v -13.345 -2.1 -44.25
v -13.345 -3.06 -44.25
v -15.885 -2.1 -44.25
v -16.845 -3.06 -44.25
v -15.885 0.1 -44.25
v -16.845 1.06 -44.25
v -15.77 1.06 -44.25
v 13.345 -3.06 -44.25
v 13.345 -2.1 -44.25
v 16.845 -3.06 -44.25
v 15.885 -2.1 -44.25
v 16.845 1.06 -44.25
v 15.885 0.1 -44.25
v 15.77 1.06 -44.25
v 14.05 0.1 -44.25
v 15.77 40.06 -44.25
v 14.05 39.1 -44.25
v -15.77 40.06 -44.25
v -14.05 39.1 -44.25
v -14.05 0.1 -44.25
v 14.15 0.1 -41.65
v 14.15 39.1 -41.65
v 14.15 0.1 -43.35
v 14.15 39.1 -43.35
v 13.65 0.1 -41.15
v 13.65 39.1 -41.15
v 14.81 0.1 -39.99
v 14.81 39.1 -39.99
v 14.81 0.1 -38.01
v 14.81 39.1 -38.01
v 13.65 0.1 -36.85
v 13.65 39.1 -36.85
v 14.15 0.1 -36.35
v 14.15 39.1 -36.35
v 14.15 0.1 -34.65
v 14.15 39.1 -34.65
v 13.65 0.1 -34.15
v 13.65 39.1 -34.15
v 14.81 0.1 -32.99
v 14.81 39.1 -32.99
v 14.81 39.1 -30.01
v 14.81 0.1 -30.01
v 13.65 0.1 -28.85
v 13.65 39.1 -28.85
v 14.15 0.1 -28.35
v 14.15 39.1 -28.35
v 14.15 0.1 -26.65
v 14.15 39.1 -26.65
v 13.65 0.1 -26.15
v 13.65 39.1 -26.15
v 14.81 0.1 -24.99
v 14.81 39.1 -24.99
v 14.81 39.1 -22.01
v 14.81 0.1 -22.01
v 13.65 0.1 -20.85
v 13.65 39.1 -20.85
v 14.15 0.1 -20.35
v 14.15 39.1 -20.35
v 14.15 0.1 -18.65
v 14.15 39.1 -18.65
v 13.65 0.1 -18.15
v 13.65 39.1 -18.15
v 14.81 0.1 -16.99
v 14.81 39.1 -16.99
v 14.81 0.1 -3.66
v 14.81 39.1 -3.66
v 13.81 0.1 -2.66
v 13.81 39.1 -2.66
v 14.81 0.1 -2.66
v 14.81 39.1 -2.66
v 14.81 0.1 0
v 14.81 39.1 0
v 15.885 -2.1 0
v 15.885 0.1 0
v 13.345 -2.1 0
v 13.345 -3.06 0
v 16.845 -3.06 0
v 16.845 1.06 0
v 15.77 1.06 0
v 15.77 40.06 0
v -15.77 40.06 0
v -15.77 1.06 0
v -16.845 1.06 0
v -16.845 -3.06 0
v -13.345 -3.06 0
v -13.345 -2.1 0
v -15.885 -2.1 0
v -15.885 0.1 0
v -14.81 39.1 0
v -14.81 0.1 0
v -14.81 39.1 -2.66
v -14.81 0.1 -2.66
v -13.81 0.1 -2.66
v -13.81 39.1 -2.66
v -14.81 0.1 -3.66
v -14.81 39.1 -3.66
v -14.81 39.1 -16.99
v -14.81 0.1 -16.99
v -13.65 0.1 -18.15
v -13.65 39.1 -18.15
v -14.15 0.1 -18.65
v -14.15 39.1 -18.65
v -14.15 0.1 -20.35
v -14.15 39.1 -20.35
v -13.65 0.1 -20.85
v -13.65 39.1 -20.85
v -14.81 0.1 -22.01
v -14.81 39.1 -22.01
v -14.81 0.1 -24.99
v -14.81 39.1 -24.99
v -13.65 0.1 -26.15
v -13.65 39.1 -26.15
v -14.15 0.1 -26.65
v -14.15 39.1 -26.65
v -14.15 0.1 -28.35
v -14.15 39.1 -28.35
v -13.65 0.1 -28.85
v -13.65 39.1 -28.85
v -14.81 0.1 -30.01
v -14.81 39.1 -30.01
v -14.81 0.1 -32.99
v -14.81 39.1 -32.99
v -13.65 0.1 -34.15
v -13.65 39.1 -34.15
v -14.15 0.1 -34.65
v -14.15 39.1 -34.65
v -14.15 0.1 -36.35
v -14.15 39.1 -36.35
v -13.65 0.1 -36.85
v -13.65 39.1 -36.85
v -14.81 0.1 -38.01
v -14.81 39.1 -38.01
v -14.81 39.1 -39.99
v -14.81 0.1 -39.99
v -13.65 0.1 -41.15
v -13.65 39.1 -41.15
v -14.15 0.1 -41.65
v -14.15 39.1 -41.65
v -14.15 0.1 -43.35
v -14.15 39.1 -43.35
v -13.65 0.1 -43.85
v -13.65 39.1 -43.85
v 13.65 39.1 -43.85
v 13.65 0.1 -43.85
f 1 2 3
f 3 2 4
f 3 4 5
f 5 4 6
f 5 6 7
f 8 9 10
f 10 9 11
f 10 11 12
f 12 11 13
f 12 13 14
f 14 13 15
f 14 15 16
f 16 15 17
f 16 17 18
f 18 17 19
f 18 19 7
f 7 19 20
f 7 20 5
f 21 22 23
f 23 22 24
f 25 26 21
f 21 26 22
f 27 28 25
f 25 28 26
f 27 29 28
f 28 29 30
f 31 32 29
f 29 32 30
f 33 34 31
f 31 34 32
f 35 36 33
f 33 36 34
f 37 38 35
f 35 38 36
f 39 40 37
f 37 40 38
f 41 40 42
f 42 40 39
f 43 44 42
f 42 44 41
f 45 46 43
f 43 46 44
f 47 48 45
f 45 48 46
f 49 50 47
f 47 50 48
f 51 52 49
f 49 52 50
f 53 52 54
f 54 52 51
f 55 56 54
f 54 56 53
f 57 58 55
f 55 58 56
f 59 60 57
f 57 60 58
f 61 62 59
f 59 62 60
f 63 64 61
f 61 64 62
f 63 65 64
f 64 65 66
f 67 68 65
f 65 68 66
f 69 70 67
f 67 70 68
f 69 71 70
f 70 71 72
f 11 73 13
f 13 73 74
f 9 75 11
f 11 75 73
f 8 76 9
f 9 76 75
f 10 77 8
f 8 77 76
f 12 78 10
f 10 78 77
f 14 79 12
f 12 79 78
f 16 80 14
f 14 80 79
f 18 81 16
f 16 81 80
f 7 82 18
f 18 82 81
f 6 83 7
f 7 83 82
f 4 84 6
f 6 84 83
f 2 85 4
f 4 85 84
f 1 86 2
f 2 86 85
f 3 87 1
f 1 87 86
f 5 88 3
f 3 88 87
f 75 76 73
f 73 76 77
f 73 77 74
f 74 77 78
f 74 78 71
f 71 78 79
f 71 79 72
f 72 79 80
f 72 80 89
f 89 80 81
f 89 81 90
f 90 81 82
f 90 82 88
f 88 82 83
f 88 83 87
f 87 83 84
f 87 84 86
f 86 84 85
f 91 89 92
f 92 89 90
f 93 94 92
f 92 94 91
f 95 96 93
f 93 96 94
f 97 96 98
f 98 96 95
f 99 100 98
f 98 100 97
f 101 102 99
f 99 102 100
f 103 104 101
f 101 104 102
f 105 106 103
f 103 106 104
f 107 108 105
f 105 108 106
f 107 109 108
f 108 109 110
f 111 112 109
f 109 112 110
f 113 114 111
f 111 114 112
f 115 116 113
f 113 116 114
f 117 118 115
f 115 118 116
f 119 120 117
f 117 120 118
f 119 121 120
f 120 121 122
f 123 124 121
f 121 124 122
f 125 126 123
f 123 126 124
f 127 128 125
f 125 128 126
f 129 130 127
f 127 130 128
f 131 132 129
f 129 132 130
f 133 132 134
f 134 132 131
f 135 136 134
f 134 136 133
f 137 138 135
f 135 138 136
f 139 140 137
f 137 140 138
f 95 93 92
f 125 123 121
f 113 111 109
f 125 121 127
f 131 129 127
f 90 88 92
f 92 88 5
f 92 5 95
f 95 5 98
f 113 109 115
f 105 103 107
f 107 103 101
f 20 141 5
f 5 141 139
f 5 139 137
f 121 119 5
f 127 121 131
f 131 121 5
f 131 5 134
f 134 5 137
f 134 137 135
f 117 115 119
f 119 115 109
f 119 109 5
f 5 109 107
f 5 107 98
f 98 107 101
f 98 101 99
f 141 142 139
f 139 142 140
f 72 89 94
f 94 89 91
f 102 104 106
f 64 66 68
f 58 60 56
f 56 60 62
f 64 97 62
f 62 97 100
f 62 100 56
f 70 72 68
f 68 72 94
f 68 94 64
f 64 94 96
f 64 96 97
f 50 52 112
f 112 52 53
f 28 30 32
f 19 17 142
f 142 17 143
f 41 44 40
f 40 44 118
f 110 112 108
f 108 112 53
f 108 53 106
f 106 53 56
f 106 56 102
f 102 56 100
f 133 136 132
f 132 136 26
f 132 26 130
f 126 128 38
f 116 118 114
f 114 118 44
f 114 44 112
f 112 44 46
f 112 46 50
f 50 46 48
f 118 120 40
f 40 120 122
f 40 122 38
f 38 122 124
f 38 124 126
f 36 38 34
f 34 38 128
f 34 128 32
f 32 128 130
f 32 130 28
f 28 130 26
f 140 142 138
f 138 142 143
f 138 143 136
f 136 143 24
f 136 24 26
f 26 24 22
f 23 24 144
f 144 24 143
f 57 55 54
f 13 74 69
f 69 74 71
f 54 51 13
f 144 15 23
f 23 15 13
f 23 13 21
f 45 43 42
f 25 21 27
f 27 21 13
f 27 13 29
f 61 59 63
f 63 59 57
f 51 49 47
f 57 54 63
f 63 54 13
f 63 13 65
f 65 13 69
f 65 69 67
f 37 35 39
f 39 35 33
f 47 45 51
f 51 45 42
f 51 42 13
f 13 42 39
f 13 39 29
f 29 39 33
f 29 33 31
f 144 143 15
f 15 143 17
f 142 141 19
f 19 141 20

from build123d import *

# Parameters (mm, degrees)
BOSS_EXTRUDE1_DEPTH = 44.25
BOSS_EXTRUDE2_DEPTH = 39
BOSS_EXTRUDE3_DEPTH = 39
LPATTERN1_START     = 0.1
LPATTERN1_DEPTH     = 39
SPLIT1_START        = 0.1
SPLIT1_DEPTH        = 39
SPLIT1_2_DEPTH      = 39
SPLIT1_3_DEPTH      = 39


# Read off the part's stored shape, not the designer's step: LPattern1, Split1
with BuildPart() as part:
    # Sketch1 → Boss-Extrude1 (new body)
    with BuildSketch(Plane.XY):
        Polygon((-14.81, 0.1), (-15.885, 0.1), (-15.885, -2.1), (-13.345, -2.1), (-13.345, -3.06), (-16.845, -3.06), (-16.845, 1.06), (-15.77, 1.06), (-15.77, 40.06), (0, 40.06), (15.77, 40.06), (15.77, 1.06), (16.845, 1.06), (16.845, -3.06), (13.345, -3.06), (13.345, -2.1), (15.885, -2.1), (15.885, 0.1), (14.81, 0.1), (14.81, 39.1), (0, 39.1), (-14.81, 39.1), align=None)
    extrude(amount=-BOSS_EXTRUDE1_DEPTH)

    # Sketch2 → Boss-Extrude2 (add)
    with BuildSketch(Plane.XZ.offset(-39.1)):
        Polygon((-14.81, -2.66), (-13.81, -2.66), (-14.81, -3.66), align=None)
        Polygon((14.81, -3.66), (14.81, -2.66), (13.81, -2.66), align=None)
    extrude(amount=BOSS_EXTRUDE2_DEPTH)

    # Sketch3 → Boss-Extrude3 (add)
    with BuildSketch(Plane.XZ.offset(-39.1)):
        Polygon((-14.81, -32.99), (-14.81, -38.01), (-13.65, -36.85), (-14.15, -36.35), (-14.15, -34.65), (-13.65, -34.15), align=None)
        Polygon((14.15, -36.35), (13.65, -36.85), (14.81, -38.01), (14.81, -32.99), (13.65, -34.15), (14.15, -34.65), align=None)
    extrude(amount=BOSS_EXTRUDE3_DEPTH)

    # LPattern1 outline → LPattern1 (add)
    with BuildSketch(Plane(origin=(0, 0, 0), x_dir=(1, 0, 0), z_dir=(0, 1, 0)).offset(LPATTERN1_START)):
        Polygon((-13.65, 20.85), (-14.81, 22.01), (-14.81, 16.99), (-13.65, 18.15), (-14.15, 18.65), (-14.15, 20.35), align=None)
        Polygon((-14.15, 26.65), (-14.15, 28.35), (-13.65, 28.85), (-14.81, 30.01), (-14.81, 24.99), (-13.65, 26.15), align=None)
        Polygon((-14.15, 41.65), (-14.15, 43.35), (-13.65, 43.85), (-14.81, 45.01), (-14.81, 39.99), (-13.65, 41.15), align=None)
        Polygon((14.81, 16.99), (14.81, 22.01), (13.65, 20.85), (14.15, 20.35), (14.15, 18.65), (13.65, 18.15), align=None)
        Polygon((14.15, 28.35), (14.15, 26.65), (13.65, 26.15), (14.81, 24.99), (14.81, 30.01), (13.65, 28.85), align=None)
        Polygon((14.15, 43.35), (14.15, 41.65), (13.65, 41.15), (14.81, 39.99), (14.81, 45.01), (13.65, 43.85), align=None)
    extrude(amount=LPATTERN1_DEPTH)

    # Split1 outline → Split1 (cut)
    with BuildSketch(Plane(origin=(0, 0, 0), x_dir=(1, 0, 0), z_dir=(0, 1, 0)).offset(SPLIT1_START)):
        Polygon((14.81, 45.01), (14.05, 44.25), (14.81, 44.25), align=None)
        Polygon((-14.05, 44.25), (-14.81, 45.01), (-14.81, 44.25), align=None)
    extrude(amount=SPLIT1_DEPTH, mode=Mode.SUBTRACT)


with BuildPart() as body_2:
    # Split1 2 outline → Split1 2 (new body)
    with BuildSketch(Plane(origin=(0, 0, 0), x_dir=(1, 0, 0), z_dir=(0, 1, 0)).offset(SPLIT1_START)):
        Polygon((-14.81, 44.25), (-14.05, 44.25), (-14.81, 45.01), align=None)
    extrude(amount=SPLIT1_2_DEPTH)


with BuildPart() as body_3:
    # Split1 3 outline → Split1 3 (new body)
    with BuildSketch(Plane(origin=(0, 0, 0), x_dir=(1, 0, 0), z_dir=(0, 1, 0)).offset(SPLIT1_START)):
        Polygon((14.05, 44.25), (14.81, 44.25), (14.81, 45.01), align=None)
    extrude(amount=SPLIT1_3_DEPTH)


solid = part.part
